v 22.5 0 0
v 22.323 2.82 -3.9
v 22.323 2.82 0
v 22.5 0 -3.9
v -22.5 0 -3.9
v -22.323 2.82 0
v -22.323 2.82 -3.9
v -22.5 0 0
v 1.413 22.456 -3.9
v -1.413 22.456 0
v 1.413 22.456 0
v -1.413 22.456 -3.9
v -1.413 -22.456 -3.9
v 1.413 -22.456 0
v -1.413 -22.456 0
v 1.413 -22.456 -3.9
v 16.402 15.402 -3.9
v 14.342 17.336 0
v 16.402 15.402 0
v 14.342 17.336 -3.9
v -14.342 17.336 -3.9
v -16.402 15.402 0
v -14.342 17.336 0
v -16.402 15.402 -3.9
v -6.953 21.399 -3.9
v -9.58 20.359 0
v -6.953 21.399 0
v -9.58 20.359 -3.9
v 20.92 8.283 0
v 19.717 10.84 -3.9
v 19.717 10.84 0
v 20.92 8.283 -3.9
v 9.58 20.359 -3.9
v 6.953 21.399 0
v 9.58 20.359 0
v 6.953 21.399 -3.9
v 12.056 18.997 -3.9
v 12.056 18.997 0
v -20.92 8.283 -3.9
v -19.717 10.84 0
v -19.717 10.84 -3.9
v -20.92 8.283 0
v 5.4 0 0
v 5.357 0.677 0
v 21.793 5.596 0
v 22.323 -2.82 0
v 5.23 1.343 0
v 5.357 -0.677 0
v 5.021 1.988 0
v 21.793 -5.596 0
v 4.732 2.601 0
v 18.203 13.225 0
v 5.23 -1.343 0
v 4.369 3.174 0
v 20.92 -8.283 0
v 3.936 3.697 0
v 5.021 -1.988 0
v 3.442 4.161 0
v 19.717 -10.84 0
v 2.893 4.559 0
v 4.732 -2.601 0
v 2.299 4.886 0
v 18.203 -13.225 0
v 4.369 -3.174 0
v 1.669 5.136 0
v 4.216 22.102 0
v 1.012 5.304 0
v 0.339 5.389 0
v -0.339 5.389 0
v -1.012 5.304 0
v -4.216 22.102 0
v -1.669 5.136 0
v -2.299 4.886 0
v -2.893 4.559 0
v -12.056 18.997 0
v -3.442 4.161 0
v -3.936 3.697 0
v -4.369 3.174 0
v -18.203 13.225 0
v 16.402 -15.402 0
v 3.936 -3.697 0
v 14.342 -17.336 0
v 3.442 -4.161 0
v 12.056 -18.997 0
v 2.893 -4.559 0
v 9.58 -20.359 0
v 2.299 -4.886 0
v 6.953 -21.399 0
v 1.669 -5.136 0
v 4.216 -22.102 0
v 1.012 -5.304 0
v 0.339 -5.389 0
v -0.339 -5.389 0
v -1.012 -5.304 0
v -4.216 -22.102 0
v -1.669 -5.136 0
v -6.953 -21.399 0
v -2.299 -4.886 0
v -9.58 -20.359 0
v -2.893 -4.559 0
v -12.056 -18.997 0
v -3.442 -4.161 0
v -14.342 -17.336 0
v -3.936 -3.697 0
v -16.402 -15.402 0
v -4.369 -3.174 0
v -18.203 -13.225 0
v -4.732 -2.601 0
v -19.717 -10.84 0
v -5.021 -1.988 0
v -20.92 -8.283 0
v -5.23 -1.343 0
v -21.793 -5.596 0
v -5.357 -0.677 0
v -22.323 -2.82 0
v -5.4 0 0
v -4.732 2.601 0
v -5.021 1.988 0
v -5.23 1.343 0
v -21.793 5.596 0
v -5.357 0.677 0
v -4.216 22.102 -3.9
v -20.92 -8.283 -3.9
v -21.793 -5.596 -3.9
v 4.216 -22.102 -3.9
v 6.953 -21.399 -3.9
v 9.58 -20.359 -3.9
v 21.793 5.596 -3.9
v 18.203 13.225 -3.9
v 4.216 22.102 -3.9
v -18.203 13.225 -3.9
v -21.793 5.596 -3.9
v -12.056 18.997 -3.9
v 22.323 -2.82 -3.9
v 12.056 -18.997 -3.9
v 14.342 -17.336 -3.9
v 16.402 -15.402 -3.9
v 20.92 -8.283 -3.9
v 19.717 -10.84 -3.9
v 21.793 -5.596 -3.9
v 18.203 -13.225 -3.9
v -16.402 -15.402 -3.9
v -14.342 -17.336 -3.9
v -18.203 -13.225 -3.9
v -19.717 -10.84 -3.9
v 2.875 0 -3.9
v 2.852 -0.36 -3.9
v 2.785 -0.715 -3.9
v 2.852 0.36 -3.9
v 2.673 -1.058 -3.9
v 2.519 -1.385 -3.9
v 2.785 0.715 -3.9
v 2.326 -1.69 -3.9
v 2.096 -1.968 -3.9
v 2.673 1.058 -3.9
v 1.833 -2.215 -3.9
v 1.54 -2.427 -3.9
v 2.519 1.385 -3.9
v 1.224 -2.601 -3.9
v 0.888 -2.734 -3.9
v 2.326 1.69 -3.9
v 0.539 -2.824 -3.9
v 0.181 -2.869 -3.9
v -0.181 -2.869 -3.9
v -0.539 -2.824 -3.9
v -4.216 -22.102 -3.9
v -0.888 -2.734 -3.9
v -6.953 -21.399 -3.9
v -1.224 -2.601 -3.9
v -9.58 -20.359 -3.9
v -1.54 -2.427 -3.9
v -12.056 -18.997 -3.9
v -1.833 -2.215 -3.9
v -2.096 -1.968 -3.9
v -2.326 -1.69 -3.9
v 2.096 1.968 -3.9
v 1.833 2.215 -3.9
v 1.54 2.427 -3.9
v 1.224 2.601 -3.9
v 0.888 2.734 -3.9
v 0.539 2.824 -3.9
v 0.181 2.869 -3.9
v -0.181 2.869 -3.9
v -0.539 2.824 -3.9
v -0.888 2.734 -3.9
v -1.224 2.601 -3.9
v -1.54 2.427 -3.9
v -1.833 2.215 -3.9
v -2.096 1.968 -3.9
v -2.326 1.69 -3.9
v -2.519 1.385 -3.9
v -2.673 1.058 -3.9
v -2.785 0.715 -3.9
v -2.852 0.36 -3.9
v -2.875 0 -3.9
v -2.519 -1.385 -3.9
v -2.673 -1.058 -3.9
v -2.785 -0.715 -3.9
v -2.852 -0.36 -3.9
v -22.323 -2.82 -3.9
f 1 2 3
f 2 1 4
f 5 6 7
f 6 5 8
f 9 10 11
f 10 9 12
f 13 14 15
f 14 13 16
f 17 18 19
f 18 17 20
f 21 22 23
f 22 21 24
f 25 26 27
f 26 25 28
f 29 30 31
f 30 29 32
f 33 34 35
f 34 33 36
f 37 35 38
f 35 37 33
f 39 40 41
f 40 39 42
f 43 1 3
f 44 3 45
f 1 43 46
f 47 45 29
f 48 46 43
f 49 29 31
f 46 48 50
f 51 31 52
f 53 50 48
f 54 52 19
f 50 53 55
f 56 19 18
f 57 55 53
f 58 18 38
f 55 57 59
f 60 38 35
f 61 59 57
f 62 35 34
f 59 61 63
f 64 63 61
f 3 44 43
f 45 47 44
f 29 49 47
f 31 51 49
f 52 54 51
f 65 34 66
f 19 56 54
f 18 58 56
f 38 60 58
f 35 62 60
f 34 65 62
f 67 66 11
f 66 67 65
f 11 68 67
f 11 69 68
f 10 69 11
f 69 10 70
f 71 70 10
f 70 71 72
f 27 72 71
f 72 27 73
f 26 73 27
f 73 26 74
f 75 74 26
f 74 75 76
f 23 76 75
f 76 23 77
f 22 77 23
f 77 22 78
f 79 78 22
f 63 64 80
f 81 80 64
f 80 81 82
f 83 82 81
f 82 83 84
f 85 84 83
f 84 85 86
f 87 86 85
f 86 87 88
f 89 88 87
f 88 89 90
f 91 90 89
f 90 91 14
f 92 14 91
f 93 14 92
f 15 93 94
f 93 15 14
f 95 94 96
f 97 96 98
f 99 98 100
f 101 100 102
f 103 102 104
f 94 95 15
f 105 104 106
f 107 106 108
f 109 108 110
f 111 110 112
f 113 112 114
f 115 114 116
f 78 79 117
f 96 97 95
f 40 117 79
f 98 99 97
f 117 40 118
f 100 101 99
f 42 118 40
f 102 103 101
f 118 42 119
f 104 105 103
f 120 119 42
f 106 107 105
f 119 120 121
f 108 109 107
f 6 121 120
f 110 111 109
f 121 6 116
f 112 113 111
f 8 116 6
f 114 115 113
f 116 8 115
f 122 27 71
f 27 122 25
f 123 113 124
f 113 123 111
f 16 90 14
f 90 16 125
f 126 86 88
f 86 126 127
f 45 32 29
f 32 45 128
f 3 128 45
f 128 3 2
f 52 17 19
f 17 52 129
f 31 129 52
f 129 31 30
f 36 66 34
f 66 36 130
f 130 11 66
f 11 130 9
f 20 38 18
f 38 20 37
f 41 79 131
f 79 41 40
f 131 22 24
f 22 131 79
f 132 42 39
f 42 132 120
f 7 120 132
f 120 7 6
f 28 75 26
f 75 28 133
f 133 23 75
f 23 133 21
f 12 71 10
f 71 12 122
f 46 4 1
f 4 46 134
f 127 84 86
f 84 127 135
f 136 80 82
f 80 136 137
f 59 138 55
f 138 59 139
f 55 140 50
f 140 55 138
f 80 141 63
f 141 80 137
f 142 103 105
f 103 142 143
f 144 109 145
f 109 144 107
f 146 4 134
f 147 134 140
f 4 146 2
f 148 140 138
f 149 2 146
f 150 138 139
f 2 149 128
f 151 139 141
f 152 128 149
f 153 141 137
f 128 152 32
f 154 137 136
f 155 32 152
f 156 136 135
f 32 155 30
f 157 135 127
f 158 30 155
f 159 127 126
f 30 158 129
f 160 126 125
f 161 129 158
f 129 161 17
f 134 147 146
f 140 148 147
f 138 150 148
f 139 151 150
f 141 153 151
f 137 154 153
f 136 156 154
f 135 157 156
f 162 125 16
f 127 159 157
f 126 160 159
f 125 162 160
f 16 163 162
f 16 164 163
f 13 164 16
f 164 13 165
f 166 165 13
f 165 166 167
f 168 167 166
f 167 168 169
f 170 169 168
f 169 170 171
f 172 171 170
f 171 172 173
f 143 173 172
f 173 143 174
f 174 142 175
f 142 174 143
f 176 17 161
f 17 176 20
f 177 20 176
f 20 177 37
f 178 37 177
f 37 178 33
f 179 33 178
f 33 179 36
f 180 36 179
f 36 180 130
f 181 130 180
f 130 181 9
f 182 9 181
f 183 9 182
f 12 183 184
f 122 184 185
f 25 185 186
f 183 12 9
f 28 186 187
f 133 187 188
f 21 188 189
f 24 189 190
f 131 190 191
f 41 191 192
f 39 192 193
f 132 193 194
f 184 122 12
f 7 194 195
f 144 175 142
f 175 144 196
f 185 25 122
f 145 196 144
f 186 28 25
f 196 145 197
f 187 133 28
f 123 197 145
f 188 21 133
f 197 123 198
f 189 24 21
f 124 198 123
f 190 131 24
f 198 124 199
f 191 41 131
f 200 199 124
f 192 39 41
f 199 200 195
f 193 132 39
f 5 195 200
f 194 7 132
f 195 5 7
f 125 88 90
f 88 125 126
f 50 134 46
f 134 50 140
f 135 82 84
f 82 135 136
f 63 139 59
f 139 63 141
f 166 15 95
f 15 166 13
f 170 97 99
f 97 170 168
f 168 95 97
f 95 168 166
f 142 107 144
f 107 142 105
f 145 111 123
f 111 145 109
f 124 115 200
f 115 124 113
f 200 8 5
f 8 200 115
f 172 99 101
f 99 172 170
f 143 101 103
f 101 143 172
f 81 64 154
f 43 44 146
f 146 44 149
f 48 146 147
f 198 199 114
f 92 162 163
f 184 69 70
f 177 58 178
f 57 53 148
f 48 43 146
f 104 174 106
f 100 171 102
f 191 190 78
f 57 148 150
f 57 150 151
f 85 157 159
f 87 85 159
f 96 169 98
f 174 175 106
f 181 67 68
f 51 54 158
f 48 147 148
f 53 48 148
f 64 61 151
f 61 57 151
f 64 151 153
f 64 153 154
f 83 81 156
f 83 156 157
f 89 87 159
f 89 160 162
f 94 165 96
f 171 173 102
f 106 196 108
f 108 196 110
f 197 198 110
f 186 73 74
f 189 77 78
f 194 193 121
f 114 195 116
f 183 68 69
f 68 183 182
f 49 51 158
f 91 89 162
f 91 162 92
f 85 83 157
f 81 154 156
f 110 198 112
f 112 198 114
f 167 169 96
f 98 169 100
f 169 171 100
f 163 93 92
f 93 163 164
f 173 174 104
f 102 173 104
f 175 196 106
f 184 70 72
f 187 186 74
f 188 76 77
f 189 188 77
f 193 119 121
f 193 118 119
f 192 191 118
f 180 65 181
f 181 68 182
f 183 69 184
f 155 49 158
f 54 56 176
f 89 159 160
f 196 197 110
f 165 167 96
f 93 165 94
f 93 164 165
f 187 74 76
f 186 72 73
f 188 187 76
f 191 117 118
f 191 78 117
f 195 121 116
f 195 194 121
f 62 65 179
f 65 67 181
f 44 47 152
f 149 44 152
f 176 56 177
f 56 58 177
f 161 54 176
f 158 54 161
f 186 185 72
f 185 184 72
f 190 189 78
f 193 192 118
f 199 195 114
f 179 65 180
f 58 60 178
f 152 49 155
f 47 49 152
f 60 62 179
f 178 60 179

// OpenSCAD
$fn = 50;


difference() {
	union() {
		translate(v = [0, 0, -3.9000000000]) {
			cylinder(h = 3.9000000000, r = 22.5000000000);
		}
		#translate(v = [0, 0, -6.9000000000]) {
			cylinder(h = 6.9000000000, r = 2.8750000000);
		}
	}
	union() {
		translate(v = [0, 0, 0]) {
			rotate(a = [0, 0, 0]) {
				difference() {
					union() {
						translate(v = [0, 0, -6.9000000000]) {
							cylinder(h = 6.9000000000, r = 2.6000000000);
						}
						translate(v = [0, 0, -3.9000000000]) {
							cylinder(h = 3.9000000000, r1 = 2.8750000000, r2 = 5.4000000000);
						}
						translate(v = [0, 0, -6.9000000000]) {
							cylinder(h = 6.9000000000, r = 2.8750000000);
						}
						translate(v = [0, 0, -6.9000000000]) {
							cylinder(h = 6.9000000000, r = 2.6000000000);
						}
					}
					union();
				}
			}
		}
	}
}
